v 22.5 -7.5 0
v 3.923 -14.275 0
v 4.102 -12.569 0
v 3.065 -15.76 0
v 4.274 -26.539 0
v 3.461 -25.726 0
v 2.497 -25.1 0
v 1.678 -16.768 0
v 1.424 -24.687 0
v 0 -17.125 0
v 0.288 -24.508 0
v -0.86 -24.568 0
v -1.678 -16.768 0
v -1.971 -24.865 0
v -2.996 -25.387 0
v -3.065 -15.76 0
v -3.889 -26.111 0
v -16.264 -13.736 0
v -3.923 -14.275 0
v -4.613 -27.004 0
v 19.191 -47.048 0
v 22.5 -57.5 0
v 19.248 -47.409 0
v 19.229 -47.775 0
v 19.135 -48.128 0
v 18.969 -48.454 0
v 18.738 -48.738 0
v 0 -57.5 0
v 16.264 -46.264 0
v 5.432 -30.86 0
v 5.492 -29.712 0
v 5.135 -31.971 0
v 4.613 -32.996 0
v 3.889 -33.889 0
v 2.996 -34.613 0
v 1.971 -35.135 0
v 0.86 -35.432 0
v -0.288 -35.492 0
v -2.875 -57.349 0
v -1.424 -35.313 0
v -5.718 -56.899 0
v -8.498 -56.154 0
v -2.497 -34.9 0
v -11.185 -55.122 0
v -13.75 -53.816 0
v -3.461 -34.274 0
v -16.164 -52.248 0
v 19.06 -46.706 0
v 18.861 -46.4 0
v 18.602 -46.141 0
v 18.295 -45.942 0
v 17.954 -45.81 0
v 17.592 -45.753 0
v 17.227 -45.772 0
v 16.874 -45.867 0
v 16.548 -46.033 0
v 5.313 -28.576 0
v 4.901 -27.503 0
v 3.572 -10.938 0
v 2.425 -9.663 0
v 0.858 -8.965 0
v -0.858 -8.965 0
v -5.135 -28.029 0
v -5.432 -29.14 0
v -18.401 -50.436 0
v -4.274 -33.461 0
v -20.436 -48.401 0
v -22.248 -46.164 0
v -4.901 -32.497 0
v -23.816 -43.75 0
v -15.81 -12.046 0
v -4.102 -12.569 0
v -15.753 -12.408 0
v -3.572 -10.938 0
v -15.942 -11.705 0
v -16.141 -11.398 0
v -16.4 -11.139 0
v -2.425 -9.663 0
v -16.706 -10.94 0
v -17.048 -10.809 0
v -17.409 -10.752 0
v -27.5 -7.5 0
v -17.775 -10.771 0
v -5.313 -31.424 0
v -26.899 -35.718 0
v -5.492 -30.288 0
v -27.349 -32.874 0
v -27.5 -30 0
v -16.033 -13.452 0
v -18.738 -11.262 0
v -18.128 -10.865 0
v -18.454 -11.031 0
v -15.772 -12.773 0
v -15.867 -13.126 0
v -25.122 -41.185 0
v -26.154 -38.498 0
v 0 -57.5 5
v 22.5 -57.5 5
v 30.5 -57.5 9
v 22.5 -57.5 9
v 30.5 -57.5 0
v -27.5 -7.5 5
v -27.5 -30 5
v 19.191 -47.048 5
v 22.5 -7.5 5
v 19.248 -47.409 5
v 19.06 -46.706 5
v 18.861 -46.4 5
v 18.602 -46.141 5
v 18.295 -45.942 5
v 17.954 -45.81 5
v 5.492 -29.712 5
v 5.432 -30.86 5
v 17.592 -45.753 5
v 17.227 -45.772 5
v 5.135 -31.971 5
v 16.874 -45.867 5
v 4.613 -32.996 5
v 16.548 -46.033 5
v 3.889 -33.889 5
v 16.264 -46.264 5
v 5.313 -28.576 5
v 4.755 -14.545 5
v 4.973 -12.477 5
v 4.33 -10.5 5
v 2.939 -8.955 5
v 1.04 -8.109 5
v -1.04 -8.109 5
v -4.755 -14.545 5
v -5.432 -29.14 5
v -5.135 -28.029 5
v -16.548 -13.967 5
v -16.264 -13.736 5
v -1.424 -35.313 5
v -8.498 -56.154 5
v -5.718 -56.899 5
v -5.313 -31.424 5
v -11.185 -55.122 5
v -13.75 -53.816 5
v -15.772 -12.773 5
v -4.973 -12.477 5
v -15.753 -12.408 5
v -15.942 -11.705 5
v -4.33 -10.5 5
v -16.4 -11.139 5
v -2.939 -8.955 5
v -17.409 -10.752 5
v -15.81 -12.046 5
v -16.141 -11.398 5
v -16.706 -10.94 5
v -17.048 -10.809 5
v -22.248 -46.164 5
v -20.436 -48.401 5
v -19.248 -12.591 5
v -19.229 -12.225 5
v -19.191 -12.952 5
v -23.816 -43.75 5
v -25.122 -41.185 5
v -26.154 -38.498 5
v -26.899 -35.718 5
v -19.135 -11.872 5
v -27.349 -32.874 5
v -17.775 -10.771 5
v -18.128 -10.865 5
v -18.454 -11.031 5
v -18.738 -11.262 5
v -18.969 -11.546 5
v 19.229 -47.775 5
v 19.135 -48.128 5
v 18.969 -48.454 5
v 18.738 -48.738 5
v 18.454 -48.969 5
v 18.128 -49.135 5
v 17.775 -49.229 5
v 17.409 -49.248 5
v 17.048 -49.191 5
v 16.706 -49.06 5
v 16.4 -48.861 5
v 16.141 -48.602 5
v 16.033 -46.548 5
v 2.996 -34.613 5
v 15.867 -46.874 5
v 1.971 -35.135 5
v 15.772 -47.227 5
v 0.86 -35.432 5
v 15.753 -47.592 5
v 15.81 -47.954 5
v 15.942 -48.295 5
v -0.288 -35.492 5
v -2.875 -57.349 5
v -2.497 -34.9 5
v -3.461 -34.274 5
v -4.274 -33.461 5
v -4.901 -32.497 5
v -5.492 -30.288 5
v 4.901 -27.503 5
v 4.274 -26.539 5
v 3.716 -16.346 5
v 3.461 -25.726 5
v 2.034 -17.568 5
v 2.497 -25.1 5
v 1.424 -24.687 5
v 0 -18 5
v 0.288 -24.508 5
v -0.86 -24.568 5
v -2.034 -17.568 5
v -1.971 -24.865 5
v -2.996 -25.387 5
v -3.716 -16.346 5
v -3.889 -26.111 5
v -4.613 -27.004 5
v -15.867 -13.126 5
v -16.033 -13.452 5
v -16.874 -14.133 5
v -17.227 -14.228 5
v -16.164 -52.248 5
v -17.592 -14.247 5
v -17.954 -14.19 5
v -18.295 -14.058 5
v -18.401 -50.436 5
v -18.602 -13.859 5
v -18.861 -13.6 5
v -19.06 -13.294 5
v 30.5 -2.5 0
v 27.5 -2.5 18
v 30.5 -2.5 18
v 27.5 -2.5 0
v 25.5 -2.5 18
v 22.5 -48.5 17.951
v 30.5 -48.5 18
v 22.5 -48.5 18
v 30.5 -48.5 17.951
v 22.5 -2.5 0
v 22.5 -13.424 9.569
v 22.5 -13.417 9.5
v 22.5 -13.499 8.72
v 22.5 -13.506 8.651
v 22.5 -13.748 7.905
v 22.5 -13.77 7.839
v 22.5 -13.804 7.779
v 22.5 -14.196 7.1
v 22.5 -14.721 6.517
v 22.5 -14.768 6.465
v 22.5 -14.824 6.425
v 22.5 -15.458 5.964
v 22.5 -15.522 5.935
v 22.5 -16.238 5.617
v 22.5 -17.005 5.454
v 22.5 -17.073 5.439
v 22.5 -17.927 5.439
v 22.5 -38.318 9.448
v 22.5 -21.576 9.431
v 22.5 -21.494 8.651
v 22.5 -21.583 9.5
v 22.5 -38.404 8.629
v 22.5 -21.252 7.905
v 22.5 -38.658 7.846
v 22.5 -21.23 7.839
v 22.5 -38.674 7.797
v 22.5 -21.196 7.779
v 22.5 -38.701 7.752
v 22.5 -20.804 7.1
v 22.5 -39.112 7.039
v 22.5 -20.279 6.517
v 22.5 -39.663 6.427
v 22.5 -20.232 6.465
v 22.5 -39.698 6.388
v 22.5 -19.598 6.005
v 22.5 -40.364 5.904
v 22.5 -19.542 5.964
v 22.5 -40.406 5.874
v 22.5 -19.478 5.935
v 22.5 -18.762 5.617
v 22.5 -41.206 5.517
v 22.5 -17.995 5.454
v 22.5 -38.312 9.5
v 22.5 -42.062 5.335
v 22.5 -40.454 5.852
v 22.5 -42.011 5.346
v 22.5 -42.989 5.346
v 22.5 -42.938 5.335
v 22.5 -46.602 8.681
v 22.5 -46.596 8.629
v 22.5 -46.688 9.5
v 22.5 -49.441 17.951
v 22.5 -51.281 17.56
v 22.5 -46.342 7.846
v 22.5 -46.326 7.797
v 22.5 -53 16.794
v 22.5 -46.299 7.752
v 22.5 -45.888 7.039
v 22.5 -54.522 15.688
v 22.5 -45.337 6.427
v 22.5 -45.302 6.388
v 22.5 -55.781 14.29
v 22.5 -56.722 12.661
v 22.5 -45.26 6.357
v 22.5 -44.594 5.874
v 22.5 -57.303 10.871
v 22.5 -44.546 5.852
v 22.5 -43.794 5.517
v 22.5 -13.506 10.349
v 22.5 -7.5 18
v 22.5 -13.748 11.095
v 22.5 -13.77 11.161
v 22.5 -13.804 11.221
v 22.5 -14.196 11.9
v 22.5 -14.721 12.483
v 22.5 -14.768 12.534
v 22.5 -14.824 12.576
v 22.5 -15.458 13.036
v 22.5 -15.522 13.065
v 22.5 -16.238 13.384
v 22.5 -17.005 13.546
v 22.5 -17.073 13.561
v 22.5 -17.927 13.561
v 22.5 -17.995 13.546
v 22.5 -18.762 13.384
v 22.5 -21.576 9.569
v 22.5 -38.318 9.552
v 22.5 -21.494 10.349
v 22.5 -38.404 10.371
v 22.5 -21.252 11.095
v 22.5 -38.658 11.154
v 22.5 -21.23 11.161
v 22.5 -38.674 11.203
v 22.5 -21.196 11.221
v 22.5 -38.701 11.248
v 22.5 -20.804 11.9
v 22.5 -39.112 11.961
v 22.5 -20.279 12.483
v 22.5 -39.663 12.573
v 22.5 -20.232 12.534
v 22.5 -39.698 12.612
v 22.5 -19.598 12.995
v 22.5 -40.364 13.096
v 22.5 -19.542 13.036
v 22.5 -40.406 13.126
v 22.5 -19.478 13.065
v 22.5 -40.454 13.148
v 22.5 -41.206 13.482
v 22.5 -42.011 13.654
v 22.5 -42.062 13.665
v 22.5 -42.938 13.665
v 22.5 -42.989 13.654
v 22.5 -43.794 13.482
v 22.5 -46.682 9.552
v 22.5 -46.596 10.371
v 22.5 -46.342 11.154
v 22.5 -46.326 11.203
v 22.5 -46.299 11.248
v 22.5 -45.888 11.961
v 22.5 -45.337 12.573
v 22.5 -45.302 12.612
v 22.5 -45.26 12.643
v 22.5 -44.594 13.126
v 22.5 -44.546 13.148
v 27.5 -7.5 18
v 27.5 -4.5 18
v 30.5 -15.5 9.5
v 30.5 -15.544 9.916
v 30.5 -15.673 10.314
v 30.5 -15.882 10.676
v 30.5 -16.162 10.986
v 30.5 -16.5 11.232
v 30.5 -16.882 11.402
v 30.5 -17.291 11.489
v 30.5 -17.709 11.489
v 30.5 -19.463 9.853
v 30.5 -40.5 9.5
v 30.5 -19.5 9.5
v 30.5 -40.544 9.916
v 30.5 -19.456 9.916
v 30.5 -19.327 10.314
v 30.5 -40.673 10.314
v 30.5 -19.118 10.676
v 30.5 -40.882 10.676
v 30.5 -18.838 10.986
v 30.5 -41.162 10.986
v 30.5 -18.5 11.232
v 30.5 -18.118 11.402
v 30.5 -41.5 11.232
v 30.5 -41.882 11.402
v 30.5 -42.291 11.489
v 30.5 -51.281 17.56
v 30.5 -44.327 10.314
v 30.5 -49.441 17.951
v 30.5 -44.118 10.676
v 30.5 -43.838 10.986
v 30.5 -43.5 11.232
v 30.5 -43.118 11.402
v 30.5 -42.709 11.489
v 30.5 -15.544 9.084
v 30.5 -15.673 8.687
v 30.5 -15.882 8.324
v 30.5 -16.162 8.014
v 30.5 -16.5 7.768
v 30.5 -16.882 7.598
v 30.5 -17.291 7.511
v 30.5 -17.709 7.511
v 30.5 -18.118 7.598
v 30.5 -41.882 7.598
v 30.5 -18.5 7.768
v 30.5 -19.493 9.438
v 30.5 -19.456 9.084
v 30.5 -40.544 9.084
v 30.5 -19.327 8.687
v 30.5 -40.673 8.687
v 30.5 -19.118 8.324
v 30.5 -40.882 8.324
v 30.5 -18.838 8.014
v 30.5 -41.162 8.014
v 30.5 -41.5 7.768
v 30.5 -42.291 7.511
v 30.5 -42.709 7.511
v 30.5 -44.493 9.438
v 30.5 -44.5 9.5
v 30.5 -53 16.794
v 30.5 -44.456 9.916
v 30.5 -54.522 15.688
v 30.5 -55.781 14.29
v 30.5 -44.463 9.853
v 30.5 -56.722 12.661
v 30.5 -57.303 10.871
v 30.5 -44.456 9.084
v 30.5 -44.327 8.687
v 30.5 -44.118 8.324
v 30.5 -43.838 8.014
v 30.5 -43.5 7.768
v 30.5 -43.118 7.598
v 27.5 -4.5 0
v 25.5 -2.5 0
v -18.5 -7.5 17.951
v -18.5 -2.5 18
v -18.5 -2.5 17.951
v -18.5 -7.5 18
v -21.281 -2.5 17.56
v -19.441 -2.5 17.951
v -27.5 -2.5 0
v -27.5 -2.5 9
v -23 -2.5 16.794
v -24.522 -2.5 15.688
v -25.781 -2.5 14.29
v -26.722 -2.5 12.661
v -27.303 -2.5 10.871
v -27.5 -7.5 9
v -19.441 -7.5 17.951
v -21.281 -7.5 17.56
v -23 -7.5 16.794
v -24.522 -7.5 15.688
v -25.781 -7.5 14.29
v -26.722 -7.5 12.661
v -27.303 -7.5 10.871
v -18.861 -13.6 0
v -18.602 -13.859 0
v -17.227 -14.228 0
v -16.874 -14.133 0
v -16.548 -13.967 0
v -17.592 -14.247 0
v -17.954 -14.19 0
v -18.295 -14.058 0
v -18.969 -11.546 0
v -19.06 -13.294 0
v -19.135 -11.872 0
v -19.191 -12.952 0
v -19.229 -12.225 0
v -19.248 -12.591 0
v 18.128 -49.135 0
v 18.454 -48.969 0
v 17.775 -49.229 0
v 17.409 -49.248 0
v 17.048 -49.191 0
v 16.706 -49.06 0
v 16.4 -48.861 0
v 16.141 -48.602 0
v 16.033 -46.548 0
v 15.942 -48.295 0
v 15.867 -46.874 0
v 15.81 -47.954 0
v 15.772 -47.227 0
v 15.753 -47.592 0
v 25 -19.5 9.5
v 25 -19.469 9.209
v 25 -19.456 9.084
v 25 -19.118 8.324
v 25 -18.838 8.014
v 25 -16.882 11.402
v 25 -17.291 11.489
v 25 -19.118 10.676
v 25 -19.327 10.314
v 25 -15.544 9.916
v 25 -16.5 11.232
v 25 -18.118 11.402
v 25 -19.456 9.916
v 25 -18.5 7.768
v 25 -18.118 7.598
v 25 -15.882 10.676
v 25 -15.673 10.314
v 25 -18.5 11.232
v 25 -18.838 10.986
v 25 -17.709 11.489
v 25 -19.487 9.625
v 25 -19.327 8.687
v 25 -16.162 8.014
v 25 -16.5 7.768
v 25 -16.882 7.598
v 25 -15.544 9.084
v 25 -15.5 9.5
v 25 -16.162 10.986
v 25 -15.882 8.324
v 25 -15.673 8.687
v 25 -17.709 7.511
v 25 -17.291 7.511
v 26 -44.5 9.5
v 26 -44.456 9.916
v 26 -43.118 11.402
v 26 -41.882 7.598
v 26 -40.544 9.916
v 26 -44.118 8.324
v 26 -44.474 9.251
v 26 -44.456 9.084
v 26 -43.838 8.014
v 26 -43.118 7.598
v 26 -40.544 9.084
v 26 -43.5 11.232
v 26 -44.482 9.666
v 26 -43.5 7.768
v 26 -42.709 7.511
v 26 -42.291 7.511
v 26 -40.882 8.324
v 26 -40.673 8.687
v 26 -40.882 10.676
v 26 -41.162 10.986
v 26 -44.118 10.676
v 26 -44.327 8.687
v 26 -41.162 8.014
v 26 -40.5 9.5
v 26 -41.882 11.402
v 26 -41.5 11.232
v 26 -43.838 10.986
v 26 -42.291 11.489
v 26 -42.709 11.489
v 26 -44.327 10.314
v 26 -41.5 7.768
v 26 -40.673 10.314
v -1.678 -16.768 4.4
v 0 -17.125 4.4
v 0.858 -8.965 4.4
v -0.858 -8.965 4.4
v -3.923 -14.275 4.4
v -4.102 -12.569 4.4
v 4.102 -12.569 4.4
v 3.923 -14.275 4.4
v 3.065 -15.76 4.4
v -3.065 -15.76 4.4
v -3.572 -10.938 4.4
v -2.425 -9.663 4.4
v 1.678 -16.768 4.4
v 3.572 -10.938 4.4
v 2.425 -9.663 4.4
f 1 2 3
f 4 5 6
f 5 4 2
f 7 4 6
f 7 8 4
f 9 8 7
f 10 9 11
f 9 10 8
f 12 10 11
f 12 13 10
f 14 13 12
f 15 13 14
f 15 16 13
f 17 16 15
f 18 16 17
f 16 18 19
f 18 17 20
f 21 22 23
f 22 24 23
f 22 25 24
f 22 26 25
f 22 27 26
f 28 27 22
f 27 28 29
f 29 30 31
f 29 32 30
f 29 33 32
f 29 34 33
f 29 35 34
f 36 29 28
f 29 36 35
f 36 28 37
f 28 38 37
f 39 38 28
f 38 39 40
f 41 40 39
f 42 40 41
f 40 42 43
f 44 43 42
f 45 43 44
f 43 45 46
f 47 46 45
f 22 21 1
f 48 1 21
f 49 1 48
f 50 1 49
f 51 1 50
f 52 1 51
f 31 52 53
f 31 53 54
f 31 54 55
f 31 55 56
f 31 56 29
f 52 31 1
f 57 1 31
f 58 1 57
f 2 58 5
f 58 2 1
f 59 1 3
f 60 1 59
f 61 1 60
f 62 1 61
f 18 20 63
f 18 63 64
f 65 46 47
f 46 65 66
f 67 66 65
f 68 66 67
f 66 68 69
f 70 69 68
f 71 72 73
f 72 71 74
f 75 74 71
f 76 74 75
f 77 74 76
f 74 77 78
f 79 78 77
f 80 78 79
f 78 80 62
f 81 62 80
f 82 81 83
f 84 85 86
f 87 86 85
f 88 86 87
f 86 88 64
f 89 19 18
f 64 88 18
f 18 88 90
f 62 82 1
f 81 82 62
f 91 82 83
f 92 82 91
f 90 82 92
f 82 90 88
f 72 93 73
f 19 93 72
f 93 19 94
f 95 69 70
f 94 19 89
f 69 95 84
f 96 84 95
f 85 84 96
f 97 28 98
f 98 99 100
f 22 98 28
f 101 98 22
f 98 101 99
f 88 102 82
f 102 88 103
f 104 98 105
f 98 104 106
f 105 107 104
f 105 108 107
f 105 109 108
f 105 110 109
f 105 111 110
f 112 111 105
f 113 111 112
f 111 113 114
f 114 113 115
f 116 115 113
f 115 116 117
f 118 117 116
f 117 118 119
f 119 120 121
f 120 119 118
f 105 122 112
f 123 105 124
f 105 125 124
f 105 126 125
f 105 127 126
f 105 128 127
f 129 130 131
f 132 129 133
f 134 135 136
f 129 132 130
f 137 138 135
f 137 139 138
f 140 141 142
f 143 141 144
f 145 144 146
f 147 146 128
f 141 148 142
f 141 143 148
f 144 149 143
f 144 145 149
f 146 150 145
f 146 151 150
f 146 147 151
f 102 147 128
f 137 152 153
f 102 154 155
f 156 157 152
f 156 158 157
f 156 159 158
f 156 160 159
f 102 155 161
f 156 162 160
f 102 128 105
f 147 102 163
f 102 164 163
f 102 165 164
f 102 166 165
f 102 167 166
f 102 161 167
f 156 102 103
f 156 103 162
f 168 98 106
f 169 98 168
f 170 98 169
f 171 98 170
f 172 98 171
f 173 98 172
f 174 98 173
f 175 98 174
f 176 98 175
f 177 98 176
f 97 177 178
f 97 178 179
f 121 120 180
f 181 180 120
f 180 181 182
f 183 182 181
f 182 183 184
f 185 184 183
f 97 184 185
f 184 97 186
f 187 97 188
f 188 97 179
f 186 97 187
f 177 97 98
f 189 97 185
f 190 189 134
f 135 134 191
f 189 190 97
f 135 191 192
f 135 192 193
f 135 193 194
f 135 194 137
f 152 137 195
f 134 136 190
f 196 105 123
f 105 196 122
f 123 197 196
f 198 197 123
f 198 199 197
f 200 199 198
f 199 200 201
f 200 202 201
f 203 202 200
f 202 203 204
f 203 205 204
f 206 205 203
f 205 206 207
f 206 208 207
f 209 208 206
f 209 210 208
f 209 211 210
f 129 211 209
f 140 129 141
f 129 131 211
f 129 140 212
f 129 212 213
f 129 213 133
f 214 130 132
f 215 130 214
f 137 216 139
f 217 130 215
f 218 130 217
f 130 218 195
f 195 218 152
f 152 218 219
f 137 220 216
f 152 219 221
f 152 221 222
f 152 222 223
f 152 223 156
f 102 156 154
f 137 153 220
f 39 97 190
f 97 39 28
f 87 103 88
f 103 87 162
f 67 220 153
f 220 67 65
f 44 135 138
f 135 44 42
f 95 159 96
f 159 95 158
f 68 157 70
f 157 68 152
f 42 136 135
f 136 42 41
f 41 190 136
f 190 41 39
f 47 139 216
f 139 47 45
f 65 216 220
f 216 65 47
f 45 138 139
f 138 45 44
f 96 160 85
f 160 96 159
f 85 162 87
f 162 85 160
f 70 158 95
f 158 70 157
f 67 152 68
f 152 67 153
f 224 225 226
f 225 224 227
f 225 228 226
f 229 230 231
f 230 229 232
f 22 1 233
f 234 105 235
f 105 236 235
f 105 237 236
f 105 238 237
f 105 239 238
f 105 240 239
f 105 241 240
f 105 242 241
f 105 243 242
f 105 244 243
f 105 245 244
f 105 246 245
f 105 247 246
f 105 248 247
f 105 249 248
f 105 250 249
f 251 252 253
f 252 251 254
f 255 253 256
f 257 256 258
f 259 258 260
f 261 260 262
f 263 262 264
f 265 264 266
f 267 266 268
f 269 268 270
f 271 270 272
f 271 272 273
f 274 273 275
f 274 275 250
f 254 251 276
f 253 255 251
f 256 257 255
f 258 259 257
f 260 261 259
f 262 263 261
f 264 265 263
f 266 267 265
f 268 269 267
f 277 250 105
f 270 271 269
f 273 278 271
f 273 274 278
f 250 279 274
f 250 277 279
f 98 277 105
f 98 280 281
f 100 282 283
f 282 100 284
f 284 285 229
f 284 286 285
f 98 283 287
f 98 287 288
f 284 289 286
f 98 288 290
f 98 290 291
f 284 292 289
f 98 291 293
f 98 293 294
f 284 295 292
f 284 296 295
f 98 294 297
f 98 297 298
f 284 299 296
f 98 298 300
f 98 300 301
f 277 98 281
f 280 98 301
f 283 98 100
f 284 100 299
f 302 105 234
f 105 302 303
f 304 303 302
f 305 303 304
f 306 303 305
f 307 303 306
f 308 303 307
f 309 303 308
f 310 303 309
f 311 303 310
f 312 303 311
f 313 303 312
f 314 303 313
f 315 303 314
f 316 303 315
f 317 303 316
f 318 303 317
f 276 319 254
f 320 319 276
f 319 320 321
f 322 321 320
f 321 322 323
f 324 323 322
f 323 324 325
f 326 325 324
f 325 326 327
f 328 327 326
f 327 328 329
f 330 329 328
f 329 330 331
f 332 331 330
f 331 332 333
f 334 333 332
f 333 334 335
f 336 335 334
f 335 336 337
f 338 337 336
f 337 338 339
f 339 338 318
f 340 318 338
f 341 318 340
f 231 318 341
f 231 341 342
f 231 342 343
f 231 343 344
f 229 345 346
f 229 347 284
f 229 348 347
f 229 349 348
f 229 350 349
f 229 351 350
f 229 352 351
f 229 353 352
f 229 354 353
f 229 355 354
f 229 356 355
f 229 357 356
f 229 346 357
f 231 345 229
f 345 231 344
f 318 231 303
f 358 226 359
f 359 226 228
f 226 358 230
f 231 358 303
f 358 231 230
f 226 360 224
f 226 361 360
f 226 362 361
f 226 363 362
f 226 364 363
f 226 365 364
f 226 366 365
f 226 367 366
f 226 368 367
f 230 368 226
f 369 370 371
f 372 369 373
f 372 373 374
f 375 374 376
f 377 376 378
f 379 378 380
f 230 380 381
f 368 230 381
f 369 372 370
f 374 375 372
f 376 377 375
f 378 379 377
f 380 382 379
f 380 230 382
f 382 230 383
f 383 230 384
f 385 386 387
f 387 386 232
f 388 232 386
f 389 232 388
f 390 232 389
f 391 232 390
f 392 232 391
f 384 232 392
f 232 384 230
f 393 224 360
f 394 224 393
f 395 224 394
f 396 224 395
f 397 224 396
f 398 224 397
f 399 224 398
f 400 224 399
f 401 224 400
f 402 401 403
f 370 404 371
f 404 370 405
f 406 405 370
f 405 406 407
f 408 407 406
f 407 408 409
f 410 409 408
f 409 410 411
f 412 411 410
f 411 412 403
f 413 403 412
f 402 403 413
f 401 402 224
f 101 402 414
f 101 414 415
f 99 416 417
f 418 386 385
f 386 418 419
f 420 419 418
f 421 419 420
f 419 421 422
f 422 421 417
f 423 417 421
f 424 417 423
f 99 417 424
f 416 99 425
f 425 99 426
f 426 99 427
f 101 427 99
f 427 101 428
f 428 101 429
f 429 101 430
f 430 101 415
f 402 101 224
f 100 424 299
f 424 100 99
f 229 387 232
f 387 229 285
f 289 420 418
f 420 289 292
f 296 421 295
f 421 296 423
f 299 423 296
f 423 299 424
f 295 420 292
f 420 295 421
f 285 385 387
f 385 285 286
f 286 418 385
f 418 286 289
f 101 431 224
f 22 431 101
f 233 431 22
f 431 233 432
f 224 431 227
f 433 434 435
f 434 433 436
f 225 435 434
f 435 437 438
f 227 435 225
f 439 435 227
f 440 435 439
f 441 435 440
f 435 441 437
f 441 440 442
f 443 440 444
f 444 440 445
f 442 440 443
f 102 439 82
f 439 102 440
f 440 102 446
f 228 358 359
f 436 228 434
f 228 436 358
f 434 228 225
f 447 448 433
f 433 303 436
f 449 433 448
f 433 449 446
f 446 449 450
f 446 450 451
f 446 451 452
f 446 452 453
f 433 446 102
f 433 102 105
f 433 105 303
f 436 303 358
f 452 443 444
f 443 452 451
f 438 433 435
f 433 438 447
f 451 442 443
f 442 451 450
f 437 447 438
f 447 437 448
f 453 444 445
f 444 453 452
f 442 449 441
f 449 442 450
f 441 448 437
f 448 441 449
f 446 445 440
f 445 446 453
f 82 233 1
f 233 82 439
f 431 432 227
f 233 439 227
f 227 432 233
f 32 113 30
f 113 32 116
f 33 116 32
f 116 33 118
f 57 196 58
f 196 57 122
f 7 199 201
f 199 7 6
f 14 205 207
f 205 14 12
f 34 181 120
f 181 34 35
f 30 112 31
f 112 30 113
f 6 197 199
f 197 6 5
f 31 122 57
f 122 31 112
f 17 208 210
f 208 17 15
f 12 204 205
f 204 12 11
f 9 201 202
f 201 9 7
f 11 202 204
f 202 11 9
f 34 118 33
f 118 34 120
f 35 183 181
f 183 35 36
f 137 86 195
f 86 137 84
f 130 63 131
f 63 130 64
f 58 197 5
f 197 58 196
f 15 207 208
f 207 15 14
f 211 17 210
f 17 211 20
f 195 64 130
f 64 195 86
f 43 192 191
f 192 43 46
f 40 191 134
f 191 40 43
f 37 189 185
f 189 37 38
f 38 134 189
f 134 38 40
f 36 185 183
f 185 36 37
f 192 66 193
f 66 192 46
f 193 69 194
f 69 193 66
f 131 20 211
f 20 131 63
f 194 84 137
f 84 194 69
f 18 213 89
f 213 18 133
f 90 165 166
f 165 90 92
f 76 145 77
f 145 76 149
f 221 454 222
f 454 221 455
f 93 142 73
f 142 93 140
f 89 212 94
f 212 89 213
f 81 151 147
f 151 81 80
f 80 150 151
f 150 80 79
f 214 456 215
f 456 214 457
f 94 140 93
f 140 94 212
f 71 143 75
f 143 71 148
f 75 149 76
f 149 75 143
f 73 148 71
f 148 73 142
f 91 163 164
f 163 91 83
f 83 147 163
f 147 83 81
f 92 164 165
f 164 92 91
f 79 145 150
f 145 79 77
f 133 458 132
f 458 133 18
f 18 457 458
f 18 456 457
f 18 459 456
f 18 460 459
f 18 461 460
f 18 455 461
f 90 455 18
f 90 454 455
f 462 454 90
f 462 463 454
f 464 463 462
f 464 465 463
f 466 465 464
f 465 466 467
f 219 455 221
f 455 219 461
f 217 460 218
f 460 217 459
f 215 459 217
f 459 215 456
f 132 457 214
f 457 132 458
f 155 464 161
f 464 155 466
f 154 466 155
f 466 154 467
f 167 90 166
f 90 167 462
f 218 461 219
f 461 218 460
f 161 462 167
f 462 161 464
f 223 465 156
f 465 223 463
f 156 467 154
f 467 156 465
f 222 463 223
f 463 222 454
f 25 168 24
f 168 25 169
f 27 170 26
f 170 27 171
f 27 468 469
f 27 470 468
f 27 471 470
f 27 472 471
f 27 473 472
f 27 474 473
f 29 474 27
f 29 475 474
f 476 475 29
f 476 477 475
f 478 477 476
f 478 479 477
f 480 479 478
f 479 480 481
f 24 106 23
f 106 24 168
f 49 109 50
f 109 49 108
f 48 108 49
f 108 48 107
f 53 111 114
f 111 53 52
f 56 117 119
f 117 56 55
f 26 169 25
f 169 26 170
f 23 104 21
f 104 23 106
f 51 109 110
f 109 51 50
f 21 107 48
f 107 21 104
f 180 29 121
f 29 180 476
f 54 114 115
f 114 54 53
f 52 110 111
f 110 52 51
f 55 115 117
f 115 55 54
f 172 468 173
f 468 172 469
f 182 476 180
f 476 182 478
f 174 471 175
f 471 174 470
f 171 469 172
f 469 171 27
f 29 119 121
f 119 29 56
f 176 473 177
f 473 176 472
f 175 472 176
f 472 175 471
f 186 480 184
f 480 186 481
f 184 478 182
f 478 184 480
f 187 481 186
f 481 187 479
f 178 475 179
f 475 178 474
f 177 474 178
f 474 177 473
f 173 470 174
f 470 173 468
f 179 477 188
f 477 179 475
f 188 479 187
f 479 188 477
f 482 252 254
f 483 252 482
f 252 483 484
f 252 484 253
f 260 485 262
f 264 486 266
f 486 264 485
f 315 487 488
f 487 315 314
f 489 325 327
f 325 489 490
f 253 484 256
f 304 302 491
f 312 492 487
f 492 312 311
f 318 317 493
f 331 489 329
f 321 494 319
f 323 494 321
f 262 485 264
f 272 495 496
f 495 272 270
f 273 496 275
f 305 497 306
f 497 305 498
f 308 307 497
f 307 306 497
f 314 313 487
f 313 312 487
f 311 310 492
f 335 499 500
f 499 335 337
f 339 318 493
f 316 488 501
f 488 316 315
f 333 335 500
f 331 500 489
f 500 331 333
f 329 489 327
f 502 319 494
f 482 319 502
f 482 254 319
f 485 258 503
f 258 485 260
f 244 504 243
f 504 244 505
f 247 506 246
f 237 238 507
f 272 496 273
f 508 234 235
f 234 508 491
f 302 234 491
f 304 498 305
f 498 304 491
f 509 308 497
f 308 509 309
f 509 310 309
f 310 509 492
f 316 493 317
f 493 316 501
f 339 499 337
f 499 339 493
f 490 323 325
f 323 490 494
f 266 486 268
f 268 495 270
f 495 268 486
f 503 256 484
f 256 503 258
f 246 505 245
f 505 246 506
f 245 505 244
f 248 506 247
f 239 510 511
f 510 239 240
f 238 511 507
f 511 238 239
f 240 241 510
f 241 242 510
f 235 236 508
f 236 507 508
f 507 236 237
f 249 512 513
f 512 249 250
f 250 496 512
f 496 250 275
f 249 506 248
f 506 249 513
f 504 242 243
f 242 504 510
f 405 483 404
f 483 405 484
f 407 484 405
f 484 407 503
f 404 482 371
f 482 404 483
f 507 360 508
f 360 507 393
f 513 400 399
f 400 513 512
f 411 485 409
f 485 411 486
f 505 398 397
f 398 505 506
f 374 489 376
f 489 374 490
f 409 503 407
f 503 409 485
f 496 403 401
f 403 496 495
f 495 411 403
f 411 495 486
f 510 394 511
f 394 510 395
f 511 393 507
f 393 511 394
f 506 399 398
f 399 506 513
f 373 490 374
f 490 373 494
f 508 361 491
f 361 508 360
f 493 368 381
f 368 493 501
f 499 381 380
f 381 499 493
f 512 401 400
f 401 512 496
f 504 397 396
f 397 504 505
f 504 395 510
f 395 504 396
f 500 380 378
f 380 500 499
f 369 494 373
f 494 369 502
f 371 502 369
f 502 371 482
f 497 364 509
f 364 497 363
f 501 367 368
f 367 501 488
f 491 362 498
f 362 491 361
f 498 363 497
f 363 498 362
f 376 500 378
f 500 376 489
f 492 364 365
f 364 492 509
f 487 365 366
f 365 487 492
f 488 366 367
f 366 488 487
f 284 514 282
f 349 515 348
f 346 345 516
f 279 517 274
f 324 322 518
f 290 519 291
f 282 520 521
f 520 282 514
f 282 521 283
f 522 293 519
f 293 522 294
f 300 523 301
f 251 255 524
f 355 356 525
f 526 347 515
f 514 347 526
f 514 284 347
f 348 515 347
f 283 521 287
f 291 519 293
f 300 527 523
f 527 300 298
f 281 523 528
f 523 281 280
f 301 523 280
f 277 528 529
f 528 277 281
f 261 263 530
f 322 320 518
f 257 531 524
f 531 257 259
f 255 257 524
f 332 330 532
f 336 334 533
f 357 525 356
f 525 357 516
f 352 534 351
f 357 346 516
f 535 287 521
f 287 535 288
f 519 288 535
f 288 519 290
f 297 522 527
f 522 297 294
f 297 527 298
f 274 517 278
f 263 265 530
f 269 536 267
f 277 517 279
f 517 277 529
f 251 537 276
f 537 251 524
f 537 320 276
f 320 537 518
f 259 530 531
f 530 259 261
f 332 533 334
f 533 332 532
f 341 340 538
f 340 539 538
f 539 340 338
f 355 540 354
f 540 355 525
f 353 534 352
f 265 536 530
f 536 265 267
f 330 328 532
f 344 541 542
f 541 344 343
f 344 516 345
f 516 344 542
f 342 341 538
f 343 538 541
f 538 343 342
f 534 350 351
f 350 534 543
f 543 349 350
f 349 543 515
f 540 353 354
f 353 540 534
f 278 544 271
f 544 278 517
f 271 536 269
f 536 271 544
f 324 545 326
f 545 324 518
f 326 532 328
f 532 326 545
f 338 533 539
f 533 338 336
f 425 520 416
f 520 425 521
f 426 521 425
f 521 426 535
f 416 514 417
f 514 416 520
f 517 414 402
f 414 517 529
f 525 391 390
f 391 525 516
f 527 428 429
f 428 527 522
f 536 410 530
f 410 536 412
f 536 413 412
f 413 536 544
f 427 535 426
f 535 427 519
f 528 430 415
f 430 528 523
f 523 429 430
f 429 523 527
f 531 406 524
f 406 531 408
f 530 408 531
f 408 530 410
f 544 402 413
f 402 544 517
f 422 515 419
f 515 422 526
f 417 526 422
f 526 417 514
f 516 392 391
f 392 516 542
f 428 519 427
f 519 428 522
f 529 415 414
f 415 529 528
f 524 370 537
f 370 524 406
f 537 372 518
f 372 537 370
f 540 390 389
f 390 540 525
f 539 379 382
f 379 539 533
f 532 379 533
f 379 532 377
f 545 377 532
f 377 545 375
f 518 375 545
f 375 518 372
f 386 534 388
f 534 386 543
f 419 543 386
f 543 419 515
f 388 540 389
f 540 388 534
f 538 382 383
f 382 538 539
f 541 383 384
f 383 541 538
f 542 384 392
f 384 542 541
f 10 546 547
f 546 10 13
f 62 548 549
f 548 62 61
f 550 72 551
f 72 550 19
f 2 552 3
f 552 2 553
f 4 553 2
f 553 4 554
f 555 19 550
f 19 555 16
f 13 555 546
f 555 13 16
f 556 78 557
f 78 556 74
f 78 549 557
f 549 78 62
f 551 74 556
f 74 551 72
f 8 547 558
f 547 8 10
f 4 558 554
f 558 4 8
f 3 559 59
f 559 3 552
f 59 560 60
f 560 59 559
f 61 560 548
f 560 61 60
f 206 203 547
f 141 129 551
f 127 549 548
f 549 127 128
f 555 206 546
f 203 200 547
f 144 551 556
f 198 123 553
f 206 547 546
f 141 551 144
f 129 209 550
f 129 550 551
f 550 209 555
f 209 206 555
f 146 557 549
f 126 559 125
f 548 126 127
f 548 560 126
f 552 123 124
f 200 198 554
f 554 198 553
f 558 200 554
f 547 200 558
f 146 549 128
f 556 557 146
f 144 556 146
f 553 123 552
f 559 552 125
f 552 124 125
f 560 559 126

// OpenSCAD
$fn=100;
r_body = 21;
r_hole = 1.75;
r_ear = 3.75;
plate_width = 55;
plate_length = 55;
plate_thickness = 5;
plate_hight = 18;

r_screw=2; // Wood screw
r_screw_head=4.5;

module mount(){
    difference(){
       translate([-plate_width/2, -plate_length/2, 0]) cube([plate_width, plate_length, plate_thickness]);
        difference(){
            cube([plate_width/2, plate_length/2, plate_thickness]);
            cylinder(h = plate_thickness, r = plate_width/2, $fn=60);
        }
    }
        
    translate([0, -plate_length/2-3, -plate_hight/2+plate_thickness]) rotate([-90, 0, 0]) difference(){
        translate([-plate_width/2, -plate_hight/2, 0]) cube([plate_width, plate_hight, plate_thickness+3]);
        translate([plate_width/2-plate_hight/2, 0, 0]){
            difference(){
                cube([plate_hight/2, plate_hight/2, plate_thickness+3]);
                cylinder(h = plate_thickness+3, r = plate_hight/2, $fn=30);
            }
        }
    }
    
    translate([-plate_width/2+plate_thickness, plate_length/2, plate_hight/2+plate_thickness]) 
    rotate([-90, 0, 90]) difference(){
        translate([-plate_length, plate_hight/2, 0]) cube([plate_length, plate_hight, plate_thickness]);
        translate([-plate_hight/2, plate_hight, 0]){
            difference(){
                cube([plate_hight/2, plate_hight/2, plate_thickness]);
                cylinder(h = plate_thickness, r = plate_hight/2, $fn=30);
            }
        }
    }
}
    
//mirror([1, 0, 0]) 

module right_mount() translate([30, 0, -plate_thickness]) difference(){
    mount();
    translate([-12.5, -plate_length/2+plate_thickness+0.5, 2-plate_hight/2+plate_thickness/2]) rotate([90, 0, 0]) cylinder(h = 3, r1=r_screw_head, r2=r_screw, $fn=30);
    translate([-12.5, -plate_length/2+plate_thickness+0.5, 2-plate_hight/2+plate_thickness/2]) rotate([90, 0, 0]) cylinder(h = 10, r=r_screw, $fn=30);
    translate([12.5, -plate_length/2+plate_thickness+0.5, 2-plate_hight/2+plate_thickness/2]) rotate([90, 0, 0]) cylinder(h = 4, r1=r_screw_head, r2=r_screw, $fn=30);
    translate([12.5, -plate_length/2+plate_thickness+0.5, 2-plate_hight/2+plate_thickness/2]) rotate([90, 0, 0]) cylinder(h = 10, r=r_screw, $fn=30);
    
    rotate([180, 0, -45]){
        
        translate([0, 0, -10]) cylinder(h = 20, r=5.5, $fn=30);
        translate([-r_body-r_ear, 0, -5]) cylinder(h = 10, r=r_hole, $fn=30);
        translate([+r_body+r_ear, 0, -5]) cylinder(h = 10, r=r_hole, $fn=30);
    }
    translate([-17, 0, -1]) cylinder(h = 50, r=4.125, $fn=15);
    translate([-17, 0, 0]) cylinder(h = 0.6, r1=5, r2=4.125, $fn=15);
}


mirror([0, 0, 1]){
    //rotate([0, 0, 180]) right_mount();
    rotate([0, 0, 90]) mirror([1, 0, 0]) right_mount();
}
